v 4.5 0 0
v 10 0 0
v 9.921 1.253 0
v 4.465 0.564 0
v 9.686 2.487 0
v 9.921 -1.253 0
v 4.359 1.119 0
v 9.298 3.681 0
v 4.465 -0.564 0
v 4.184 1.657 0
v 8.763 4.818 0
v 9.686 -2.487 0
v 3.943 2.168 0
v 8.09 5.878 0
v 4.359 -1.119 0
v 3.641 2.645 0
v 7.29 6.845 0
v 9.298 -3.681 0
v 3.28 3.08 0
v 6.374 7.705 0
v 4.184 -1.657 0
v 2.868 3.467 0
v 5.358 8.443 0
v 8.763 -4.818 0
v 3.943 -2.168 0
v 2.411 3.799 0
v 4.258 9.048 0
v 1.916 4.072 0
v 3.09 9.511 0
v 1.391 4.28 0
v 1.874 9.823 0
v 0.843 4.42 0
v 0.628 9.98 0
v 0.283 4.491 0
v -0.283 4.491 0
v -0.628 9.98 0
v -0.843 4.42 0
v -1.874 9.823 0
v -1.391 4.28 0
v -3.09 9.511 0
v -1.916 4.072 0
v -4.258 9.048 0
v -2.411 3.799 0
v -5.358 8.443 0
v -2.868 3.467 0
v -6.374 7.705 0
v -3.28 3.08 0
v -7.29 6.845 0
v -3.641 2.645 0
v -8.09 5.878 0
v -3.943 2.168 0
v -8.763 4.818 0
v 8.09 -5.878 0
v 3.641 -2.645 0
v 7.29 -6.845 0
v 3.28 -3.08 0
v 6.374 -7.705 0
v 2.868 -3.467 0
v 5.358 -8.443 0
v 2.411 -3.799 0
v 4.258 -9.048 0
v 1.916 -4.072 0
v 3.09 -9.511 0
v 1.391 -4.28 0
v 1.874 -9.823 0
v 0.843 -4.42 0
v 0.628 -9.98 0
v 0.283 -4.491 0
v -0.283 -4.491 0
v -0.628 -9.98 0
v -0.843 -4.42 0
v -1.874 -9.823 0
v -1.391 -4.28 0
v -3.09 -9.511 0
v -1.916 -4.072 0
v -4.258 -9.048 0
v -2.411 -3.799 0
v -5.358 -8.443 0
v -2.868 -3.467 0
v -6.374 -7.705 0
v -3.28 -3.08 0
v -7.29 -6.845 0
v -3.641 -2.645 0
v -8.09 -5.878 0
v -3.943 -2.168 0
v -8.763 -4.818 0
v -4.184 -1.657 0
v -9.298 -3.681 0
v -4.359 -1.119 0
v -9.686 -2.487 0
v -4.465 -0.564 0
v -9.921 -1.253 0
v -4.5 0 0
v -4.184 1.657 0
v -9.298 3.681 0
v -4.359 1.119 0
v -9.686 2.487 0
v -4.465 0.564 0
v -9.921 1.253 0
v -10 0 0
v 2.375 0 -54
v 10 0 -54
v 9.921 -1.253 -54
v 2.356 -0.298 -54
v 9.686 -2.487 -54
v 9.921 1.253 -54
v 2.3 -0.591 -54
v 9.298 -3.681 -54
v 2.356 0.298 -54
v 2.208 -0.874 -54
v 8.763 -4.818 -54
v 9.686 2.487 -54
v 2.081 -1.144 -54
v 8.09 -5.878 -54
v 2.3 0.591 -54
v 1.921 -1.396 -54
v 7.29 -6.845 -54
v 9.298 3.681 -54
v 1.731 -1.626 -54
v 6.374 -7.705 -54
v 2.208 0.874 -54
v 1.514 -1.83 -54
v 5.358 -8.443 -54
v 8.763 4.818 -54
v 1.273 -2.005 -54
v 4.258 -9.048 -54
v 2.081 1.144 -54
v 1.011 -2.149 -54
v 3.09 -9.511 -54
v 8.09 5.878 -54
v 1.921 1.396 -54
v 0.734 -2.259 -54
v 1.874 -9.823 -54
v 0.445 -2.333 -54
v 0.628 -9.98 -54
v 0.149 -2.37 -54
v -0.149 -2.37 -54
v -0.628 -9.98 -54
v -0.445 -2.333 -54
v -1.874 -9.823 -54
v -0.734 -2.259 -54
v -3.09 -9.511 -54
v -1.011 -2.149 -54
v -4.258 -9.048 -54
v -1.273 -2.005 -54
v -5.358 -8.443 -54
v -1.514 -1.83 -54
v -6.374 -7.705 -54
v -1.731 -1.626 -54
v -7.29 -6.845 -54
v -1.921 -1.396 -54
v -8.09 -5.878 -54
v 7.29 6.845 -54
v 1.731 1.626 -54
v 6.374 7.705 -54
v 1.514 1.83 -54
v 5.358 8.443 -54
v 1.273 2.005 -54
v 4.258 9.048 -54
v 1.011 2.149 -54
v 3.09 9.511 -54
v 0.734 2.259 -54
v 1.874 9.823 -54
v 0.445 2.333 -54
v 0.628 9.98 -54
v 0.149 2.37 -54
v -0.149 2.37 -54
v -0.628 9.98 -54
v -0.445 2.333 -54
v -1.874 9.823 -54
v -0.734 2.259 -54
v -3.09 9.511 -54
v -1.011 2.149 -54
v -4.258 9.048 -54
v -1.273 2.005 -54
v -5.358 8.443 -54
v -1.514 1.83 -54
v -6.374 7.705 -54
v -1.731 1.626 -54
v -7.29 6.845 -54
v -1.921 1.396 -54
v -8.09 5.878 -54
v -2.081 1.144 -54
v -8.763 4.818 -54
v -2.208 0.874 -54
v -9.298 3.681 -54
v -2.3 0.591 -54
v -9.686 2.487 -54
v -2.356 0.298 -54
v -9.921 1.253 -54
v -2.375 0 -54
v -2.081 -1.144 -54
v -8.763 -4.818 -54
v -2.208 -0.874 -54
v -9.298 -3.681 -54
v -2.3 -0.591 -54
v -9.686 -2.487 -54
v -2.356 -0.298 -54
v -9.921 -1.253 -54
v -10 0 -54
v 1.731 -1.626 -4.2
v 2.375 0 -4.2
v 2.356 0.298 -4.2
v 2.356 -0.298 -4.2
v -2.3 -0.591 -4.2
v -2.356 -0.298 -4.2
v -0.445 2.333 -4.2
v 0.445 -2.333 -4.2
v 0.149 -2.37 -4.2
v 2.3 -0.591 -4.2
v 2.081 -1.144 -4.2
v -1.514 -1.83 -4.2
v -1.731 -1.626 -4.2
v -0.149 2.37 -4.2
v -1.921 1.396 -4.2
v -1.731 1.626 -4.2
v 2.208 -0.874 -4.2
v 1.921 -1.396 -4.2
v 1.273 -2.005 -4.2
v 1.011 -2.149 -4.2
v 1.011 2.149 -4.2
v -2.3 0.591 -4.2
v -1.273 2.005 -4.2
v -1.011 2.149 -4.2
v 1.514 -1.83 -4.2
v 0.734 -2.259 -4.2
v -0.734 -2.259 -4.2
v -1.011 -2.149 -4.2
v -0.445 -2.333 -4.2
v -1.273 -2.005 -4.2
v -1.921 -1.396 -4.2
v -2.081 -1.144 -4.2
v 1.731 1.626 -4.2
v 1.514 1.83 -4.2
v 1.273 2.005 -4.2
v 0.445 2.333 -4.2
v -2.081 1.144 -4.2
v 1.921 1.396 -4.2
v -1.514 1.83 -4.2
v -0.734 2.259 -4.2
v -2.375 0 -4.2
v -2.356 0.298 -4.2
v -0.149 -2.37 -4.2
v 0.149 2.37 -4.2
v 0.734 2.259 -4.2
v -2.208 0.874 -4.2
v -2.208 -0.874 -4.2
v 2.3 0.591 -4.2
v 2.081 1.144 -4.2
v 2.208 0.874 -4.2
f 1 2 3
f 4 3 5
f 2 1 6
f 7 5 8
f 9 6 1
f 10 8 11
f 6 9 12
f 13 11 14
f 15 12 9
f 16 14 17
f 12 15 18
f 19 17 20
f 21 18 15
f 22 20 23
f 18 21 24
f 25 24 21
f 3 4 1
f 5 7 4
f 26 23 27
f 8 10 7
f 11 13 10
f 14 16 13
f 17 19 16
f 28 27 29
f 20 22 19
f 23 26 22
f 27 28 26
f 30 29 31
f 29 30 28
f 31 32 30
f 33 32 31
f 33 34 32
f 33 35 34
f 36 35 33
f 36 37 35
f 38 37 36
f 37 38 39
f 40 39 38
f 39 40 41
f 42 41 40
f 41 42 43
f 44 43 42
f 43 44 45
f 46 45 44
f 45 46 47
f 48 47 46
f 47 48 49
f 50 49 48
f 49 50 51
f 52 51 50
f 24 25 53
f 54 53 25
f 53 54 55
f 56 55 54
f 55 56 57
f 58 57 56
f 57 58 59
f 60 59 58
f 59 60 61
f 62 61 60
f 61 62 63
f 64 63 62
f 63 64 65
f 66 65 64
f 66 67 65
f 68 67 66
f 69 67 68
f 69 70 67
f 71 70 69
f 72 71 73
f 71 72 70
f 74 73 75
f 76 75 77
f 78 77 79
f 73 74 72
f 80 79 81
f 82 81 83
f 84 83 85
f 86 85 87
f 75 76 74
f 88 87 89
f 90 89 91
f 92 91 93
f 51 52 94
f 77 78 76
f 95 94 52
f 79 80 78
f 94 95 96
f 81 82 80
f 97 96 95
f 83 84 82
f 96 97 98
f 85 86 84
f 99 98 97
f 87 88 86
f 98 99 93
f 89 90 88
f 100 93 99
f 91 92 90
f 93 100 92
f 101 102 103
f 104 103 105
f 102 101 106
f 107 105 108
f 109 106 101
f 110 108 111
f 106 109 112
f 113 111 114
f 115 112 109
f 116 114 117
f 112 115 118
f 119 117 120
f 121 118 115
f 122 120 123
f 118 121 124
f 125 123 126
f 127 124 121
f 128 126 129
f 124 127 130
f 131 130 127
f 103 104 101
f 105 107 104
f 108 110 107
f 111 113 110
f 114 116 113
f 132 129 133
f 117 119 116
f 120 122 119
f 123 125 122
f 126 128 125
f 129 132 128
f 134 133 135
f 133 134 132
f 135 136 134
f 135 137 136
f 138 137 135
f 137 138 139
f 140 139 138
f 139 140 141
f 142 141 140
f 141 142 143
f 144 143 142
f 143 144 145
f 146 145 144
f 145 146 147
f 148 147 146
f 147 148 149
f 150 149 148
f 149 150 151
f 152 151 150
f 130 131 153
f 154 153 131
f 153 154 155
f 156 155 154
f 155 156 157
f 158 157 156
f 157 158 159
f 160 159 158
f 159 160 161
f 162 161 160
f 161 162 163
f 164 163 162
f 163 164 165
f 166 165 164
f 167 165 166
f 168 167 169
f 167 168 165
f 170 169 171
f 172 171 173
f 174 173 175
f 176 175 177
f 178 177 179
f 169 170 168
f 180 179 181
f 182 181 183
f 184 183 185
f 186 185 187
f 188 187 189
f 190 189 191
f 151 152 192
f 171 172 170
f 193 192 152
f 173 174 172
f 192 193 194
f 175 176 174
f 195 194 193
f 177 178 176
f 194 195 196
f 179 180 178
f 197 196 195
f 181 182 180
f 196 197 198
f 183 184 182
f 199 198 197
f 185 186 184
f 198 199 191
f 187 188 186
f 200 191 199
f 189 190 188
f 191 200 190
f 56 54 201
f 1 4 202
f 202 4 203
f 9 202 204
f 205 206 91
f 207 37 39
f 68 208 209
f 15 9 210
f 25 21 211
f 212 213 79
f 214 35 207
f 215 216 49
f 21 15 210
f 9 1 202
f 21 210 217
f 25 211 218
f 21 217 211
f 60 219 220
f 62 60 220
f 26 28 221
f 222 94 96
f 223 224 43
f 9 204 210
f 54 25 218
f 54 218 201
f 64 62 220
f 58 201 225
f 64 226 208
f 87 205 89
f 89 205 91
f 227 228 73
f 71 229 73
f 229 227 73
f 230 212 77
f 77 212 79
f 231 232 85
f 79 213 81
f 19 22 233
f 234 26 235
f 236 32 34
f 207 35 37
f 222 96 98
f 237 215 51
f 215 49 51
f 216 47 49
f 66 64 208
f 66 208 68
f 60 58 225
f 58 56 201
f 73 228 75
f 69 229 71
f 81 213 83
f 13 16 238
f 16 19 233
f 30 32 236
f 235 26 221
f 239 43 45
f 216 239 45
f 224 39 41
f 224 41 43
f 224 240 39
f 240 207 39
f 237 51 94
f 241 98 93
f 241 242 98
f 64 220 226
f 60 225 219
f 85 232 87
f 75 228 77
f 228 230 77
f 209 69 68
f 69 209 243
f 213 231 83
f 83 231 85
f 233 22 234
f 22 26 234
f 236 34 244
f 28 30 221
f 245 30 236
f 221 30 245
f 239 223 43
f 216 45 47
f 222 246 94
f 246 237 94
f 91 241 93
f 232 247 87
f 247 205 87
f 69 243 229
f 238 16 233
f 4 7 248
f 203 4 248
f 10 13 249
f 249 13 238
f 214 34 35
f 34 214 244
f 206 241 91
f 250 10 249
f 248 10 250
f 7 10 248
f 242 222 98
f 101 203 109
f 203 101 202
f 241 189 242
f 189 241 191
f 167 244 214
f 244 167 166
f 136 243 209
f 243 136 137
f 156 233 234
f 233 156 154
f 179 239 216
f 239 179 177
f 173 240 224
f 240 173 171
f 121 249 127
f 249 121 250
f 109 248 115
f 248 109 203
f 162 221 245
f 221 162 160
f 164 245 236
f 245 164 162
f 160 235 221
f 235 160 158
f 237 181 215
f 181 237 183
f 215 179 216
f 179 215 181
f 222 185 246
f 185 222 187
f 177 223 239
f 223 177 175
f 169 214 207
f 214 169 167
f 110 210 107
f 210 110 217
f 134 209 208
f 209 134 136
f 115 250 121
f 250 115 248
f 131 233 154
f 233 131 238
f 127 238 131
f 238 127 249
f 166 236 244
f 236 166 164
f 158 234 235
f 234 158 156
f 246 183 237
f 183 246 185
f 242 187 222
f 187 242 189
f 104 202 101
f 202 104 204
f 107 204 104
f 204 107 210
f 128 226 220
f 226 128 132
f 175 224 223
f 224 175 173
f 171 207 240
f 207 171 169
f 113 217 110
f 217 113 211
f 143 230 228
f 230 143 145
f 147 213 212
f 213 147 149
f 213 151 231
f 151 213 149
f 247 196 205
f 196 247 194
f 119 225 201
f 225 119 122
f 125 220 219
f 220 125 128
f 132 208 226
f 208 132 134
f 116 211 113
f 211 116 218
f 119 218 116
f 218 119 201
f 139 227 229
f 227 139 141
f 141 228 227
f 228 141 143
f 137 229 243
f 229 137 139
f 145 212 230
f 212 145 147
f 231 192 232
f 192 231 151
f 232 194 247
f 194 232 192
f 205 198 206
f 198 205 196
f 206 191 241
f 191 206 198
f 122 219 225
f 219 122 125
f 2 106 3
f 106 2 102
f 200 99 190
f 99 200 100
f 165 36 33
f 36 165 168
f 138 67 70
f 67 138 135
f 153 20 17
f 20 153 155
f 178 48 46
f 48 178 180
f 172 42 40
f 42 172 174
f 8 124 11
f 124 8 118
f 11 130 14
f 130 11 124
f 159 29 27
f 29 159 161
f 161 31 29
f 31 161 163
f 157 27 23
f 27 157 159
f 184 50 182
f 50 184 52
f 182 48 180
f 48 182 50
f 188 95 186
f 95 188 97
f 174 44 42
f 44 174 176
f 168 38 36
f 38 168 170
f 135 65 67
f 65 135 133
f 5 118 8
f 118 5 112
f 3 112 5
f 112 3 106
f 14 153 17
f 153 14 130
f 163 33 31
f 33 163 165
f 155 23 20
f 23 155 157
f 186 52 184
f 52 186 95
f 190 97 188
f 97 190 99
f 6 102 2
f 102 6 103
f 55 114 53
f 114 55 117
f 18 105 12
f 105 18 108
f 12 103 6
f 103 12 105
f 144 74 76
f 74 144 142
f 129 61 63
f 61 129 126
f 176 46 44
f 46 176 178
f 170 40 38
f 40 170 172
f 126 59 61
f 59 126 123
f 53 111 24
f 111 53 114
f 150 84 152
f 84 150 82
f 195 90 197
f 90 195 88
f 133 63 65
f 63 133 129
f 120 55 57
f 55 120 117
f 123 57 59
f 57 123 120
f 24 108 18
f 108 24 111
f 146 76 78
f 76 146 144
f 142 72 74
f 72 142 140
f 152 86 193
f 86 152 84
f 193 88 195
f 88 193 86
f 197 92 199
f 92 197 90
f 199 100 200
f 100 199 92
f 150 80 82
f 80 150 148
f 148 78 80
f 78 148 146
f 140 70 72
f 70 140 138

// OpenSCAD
$fn = 50;


difference() {
	union() {
		translate(v = [0, 0, -54.0000000000]) {
			cylinder(h = 54, r = 10.0000000000);
		}
	}
	union() {
		translate(v = [0, 0, 0]) {
			rotate(a = [0, 0, 0]) {
				difference() {
					union() {
						#translate(v = [0, 0, -54.0000000000]) {
							cylinder(h = 54, r = 2.2500000000);
						}
						#translate(v = [0, 0, -4.2000000000]) {
							cylinder(h = 4.2000000000, r1 = 2.3750000000, r2 = 4.5000000000);
						}
						#translate(v = [0, 0, -54.0000000000]) {
							cylinder(h = 54, r = 2.3750000000);
						}
						#translate(v = [0, 0, -54.0000000000]) {
							cylinder(h = 54, r = 2.2500000000);
						}
					}
					union();
				}
			}
		}
	}
}
